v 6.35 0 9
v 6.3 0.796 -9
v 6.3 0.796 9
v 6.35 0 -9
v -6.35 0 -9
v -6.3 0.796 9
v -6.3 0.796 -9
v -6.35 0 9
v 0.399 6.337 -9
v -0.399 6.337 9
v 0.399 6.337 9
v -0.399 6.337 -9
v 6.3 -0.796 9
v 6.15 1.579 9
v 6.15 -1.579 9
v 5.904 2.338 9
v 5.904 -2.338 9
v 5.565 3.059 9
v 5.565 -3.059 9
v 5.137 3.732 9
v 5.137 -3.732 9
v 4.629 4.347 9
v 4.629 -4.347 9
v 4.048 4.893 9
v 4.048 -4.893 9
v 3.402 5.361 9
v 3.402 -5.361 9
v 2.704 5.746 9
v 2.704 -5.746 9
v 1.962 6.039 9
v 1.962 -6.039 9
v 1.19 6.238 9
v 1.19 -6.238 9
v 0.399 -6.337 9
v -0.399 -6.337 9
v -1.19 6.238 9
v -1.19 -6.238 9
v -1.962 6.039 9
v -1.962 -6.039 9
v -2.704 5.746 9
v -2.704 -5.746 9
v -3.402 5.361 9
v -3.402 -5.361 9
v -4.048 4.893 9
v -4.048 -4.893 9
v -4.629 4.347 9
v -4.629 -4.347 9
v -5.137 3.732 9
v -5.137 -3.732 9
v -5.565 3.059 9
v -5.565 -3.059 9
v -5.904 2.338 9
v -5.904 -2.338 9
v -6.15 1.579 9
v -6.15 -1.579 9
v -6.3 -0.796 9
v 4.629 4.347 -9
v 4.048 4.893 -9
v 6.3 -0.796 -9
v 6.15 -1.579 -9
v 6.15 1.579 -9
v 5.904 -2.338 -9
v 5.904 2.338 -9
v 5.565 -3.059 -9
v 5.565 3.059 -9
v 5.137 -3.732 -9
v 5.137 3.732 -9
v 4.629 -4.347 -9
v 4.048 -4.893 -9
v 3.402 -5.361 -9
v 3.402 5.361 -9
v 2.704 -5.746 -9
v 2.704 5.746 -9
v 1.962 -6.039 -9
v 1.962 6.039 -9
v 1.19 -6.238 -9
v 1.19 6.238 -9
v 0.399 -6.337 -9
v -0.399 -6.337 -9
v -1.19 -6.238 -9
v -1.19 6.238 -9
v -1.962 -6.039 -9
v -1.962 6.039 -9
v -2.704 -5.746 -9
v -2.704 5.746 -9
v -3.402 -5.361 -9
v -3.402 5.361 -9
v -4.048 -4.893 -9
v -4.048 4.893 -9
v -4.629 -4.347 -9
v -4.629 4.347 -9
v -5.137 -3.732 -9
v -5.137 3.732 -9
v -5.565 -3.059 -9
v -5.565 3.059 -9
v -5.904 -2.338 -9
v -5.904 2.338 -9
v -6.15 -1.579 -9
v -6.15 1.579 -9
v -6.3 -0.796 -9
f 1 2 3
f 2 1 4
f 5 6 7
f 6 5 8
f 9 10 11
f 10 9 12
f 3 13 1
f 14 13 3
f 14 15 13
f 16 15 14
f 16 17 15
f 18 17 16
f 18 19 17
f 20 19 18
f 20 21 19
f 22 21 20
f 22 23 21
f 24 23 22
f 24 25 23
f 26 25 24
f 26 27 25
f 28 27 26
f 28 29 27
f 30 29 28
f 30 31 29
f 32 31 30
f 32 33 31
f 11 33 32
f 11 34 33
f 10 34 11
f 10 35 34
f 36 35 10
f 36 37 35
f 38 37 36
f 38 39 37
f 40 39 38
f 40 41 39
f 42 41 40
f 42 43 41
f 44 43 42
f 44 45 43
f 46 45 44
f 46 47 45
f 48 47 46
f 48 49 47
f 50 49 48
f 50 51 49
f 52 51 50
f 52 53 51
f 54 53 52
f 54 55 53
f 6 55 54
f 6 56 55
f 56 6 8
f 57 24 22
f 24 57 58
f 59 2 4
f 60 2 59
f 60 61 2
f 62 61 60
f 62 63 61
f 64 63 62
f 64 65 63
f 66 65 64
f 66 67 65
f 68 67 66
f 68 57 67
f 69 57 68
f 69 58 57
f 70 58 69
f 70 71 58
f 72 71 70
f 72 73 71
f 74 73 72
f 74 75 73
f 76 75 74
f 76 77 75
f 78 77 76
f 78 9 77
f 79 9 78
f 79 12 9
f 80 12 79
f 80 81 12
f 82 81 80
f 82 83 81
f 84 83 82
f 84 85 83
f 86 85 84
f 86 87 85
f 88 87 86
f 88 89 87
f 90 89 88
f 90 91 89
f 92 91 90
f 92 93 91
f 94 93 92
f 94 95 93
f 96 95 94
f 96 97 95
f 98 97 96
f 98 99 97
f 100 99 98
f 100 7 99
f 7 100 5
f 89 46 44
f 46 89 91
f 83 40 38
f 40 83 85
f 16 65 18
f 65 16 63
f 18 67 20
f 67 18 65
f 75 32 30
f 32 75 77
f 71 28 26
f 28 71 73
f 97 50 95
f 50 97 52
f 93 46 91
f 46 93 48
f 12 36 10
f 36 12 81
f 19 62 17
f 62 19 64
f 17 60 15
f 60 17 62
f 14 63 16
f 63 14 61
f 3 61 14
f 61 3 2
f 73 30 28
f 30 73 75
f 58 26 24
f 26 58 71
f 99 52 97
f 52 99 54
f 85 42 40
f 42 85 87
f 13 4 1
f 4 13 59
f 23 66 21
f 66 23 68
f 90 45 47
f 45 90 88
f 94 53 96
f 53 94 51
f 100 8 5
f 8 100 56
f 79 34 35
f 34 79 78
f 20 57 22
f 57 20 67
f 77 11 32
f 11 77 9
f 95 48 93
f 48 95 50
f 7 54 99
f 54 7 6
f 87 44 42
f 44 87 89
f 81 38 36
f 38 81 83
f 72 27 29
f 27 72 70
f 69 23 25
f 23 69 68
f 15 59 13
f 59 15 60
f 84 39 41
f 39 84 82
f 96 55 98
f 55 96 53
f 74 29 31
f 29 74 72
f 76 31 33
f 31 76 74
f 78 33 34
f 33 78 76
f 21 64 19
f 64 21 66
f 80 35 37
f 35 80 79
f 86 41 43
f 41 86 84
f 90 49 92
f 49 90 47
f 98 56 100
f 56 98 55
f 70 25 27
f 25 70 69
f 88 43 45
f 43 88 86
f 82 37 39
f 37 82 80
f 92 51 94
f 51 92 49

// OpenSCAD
$fn = 50;


difference() {
	union() {
		translate(v = [0, 0, -9.0000000000]) {
			cylinder(h = 18, r = 6.3500000000);
		}
	}
	union() {
		translate(v = [0, 0, -100.0000000000]) {
			cylinder(h = 200, r = 0);
		}
	}
}
